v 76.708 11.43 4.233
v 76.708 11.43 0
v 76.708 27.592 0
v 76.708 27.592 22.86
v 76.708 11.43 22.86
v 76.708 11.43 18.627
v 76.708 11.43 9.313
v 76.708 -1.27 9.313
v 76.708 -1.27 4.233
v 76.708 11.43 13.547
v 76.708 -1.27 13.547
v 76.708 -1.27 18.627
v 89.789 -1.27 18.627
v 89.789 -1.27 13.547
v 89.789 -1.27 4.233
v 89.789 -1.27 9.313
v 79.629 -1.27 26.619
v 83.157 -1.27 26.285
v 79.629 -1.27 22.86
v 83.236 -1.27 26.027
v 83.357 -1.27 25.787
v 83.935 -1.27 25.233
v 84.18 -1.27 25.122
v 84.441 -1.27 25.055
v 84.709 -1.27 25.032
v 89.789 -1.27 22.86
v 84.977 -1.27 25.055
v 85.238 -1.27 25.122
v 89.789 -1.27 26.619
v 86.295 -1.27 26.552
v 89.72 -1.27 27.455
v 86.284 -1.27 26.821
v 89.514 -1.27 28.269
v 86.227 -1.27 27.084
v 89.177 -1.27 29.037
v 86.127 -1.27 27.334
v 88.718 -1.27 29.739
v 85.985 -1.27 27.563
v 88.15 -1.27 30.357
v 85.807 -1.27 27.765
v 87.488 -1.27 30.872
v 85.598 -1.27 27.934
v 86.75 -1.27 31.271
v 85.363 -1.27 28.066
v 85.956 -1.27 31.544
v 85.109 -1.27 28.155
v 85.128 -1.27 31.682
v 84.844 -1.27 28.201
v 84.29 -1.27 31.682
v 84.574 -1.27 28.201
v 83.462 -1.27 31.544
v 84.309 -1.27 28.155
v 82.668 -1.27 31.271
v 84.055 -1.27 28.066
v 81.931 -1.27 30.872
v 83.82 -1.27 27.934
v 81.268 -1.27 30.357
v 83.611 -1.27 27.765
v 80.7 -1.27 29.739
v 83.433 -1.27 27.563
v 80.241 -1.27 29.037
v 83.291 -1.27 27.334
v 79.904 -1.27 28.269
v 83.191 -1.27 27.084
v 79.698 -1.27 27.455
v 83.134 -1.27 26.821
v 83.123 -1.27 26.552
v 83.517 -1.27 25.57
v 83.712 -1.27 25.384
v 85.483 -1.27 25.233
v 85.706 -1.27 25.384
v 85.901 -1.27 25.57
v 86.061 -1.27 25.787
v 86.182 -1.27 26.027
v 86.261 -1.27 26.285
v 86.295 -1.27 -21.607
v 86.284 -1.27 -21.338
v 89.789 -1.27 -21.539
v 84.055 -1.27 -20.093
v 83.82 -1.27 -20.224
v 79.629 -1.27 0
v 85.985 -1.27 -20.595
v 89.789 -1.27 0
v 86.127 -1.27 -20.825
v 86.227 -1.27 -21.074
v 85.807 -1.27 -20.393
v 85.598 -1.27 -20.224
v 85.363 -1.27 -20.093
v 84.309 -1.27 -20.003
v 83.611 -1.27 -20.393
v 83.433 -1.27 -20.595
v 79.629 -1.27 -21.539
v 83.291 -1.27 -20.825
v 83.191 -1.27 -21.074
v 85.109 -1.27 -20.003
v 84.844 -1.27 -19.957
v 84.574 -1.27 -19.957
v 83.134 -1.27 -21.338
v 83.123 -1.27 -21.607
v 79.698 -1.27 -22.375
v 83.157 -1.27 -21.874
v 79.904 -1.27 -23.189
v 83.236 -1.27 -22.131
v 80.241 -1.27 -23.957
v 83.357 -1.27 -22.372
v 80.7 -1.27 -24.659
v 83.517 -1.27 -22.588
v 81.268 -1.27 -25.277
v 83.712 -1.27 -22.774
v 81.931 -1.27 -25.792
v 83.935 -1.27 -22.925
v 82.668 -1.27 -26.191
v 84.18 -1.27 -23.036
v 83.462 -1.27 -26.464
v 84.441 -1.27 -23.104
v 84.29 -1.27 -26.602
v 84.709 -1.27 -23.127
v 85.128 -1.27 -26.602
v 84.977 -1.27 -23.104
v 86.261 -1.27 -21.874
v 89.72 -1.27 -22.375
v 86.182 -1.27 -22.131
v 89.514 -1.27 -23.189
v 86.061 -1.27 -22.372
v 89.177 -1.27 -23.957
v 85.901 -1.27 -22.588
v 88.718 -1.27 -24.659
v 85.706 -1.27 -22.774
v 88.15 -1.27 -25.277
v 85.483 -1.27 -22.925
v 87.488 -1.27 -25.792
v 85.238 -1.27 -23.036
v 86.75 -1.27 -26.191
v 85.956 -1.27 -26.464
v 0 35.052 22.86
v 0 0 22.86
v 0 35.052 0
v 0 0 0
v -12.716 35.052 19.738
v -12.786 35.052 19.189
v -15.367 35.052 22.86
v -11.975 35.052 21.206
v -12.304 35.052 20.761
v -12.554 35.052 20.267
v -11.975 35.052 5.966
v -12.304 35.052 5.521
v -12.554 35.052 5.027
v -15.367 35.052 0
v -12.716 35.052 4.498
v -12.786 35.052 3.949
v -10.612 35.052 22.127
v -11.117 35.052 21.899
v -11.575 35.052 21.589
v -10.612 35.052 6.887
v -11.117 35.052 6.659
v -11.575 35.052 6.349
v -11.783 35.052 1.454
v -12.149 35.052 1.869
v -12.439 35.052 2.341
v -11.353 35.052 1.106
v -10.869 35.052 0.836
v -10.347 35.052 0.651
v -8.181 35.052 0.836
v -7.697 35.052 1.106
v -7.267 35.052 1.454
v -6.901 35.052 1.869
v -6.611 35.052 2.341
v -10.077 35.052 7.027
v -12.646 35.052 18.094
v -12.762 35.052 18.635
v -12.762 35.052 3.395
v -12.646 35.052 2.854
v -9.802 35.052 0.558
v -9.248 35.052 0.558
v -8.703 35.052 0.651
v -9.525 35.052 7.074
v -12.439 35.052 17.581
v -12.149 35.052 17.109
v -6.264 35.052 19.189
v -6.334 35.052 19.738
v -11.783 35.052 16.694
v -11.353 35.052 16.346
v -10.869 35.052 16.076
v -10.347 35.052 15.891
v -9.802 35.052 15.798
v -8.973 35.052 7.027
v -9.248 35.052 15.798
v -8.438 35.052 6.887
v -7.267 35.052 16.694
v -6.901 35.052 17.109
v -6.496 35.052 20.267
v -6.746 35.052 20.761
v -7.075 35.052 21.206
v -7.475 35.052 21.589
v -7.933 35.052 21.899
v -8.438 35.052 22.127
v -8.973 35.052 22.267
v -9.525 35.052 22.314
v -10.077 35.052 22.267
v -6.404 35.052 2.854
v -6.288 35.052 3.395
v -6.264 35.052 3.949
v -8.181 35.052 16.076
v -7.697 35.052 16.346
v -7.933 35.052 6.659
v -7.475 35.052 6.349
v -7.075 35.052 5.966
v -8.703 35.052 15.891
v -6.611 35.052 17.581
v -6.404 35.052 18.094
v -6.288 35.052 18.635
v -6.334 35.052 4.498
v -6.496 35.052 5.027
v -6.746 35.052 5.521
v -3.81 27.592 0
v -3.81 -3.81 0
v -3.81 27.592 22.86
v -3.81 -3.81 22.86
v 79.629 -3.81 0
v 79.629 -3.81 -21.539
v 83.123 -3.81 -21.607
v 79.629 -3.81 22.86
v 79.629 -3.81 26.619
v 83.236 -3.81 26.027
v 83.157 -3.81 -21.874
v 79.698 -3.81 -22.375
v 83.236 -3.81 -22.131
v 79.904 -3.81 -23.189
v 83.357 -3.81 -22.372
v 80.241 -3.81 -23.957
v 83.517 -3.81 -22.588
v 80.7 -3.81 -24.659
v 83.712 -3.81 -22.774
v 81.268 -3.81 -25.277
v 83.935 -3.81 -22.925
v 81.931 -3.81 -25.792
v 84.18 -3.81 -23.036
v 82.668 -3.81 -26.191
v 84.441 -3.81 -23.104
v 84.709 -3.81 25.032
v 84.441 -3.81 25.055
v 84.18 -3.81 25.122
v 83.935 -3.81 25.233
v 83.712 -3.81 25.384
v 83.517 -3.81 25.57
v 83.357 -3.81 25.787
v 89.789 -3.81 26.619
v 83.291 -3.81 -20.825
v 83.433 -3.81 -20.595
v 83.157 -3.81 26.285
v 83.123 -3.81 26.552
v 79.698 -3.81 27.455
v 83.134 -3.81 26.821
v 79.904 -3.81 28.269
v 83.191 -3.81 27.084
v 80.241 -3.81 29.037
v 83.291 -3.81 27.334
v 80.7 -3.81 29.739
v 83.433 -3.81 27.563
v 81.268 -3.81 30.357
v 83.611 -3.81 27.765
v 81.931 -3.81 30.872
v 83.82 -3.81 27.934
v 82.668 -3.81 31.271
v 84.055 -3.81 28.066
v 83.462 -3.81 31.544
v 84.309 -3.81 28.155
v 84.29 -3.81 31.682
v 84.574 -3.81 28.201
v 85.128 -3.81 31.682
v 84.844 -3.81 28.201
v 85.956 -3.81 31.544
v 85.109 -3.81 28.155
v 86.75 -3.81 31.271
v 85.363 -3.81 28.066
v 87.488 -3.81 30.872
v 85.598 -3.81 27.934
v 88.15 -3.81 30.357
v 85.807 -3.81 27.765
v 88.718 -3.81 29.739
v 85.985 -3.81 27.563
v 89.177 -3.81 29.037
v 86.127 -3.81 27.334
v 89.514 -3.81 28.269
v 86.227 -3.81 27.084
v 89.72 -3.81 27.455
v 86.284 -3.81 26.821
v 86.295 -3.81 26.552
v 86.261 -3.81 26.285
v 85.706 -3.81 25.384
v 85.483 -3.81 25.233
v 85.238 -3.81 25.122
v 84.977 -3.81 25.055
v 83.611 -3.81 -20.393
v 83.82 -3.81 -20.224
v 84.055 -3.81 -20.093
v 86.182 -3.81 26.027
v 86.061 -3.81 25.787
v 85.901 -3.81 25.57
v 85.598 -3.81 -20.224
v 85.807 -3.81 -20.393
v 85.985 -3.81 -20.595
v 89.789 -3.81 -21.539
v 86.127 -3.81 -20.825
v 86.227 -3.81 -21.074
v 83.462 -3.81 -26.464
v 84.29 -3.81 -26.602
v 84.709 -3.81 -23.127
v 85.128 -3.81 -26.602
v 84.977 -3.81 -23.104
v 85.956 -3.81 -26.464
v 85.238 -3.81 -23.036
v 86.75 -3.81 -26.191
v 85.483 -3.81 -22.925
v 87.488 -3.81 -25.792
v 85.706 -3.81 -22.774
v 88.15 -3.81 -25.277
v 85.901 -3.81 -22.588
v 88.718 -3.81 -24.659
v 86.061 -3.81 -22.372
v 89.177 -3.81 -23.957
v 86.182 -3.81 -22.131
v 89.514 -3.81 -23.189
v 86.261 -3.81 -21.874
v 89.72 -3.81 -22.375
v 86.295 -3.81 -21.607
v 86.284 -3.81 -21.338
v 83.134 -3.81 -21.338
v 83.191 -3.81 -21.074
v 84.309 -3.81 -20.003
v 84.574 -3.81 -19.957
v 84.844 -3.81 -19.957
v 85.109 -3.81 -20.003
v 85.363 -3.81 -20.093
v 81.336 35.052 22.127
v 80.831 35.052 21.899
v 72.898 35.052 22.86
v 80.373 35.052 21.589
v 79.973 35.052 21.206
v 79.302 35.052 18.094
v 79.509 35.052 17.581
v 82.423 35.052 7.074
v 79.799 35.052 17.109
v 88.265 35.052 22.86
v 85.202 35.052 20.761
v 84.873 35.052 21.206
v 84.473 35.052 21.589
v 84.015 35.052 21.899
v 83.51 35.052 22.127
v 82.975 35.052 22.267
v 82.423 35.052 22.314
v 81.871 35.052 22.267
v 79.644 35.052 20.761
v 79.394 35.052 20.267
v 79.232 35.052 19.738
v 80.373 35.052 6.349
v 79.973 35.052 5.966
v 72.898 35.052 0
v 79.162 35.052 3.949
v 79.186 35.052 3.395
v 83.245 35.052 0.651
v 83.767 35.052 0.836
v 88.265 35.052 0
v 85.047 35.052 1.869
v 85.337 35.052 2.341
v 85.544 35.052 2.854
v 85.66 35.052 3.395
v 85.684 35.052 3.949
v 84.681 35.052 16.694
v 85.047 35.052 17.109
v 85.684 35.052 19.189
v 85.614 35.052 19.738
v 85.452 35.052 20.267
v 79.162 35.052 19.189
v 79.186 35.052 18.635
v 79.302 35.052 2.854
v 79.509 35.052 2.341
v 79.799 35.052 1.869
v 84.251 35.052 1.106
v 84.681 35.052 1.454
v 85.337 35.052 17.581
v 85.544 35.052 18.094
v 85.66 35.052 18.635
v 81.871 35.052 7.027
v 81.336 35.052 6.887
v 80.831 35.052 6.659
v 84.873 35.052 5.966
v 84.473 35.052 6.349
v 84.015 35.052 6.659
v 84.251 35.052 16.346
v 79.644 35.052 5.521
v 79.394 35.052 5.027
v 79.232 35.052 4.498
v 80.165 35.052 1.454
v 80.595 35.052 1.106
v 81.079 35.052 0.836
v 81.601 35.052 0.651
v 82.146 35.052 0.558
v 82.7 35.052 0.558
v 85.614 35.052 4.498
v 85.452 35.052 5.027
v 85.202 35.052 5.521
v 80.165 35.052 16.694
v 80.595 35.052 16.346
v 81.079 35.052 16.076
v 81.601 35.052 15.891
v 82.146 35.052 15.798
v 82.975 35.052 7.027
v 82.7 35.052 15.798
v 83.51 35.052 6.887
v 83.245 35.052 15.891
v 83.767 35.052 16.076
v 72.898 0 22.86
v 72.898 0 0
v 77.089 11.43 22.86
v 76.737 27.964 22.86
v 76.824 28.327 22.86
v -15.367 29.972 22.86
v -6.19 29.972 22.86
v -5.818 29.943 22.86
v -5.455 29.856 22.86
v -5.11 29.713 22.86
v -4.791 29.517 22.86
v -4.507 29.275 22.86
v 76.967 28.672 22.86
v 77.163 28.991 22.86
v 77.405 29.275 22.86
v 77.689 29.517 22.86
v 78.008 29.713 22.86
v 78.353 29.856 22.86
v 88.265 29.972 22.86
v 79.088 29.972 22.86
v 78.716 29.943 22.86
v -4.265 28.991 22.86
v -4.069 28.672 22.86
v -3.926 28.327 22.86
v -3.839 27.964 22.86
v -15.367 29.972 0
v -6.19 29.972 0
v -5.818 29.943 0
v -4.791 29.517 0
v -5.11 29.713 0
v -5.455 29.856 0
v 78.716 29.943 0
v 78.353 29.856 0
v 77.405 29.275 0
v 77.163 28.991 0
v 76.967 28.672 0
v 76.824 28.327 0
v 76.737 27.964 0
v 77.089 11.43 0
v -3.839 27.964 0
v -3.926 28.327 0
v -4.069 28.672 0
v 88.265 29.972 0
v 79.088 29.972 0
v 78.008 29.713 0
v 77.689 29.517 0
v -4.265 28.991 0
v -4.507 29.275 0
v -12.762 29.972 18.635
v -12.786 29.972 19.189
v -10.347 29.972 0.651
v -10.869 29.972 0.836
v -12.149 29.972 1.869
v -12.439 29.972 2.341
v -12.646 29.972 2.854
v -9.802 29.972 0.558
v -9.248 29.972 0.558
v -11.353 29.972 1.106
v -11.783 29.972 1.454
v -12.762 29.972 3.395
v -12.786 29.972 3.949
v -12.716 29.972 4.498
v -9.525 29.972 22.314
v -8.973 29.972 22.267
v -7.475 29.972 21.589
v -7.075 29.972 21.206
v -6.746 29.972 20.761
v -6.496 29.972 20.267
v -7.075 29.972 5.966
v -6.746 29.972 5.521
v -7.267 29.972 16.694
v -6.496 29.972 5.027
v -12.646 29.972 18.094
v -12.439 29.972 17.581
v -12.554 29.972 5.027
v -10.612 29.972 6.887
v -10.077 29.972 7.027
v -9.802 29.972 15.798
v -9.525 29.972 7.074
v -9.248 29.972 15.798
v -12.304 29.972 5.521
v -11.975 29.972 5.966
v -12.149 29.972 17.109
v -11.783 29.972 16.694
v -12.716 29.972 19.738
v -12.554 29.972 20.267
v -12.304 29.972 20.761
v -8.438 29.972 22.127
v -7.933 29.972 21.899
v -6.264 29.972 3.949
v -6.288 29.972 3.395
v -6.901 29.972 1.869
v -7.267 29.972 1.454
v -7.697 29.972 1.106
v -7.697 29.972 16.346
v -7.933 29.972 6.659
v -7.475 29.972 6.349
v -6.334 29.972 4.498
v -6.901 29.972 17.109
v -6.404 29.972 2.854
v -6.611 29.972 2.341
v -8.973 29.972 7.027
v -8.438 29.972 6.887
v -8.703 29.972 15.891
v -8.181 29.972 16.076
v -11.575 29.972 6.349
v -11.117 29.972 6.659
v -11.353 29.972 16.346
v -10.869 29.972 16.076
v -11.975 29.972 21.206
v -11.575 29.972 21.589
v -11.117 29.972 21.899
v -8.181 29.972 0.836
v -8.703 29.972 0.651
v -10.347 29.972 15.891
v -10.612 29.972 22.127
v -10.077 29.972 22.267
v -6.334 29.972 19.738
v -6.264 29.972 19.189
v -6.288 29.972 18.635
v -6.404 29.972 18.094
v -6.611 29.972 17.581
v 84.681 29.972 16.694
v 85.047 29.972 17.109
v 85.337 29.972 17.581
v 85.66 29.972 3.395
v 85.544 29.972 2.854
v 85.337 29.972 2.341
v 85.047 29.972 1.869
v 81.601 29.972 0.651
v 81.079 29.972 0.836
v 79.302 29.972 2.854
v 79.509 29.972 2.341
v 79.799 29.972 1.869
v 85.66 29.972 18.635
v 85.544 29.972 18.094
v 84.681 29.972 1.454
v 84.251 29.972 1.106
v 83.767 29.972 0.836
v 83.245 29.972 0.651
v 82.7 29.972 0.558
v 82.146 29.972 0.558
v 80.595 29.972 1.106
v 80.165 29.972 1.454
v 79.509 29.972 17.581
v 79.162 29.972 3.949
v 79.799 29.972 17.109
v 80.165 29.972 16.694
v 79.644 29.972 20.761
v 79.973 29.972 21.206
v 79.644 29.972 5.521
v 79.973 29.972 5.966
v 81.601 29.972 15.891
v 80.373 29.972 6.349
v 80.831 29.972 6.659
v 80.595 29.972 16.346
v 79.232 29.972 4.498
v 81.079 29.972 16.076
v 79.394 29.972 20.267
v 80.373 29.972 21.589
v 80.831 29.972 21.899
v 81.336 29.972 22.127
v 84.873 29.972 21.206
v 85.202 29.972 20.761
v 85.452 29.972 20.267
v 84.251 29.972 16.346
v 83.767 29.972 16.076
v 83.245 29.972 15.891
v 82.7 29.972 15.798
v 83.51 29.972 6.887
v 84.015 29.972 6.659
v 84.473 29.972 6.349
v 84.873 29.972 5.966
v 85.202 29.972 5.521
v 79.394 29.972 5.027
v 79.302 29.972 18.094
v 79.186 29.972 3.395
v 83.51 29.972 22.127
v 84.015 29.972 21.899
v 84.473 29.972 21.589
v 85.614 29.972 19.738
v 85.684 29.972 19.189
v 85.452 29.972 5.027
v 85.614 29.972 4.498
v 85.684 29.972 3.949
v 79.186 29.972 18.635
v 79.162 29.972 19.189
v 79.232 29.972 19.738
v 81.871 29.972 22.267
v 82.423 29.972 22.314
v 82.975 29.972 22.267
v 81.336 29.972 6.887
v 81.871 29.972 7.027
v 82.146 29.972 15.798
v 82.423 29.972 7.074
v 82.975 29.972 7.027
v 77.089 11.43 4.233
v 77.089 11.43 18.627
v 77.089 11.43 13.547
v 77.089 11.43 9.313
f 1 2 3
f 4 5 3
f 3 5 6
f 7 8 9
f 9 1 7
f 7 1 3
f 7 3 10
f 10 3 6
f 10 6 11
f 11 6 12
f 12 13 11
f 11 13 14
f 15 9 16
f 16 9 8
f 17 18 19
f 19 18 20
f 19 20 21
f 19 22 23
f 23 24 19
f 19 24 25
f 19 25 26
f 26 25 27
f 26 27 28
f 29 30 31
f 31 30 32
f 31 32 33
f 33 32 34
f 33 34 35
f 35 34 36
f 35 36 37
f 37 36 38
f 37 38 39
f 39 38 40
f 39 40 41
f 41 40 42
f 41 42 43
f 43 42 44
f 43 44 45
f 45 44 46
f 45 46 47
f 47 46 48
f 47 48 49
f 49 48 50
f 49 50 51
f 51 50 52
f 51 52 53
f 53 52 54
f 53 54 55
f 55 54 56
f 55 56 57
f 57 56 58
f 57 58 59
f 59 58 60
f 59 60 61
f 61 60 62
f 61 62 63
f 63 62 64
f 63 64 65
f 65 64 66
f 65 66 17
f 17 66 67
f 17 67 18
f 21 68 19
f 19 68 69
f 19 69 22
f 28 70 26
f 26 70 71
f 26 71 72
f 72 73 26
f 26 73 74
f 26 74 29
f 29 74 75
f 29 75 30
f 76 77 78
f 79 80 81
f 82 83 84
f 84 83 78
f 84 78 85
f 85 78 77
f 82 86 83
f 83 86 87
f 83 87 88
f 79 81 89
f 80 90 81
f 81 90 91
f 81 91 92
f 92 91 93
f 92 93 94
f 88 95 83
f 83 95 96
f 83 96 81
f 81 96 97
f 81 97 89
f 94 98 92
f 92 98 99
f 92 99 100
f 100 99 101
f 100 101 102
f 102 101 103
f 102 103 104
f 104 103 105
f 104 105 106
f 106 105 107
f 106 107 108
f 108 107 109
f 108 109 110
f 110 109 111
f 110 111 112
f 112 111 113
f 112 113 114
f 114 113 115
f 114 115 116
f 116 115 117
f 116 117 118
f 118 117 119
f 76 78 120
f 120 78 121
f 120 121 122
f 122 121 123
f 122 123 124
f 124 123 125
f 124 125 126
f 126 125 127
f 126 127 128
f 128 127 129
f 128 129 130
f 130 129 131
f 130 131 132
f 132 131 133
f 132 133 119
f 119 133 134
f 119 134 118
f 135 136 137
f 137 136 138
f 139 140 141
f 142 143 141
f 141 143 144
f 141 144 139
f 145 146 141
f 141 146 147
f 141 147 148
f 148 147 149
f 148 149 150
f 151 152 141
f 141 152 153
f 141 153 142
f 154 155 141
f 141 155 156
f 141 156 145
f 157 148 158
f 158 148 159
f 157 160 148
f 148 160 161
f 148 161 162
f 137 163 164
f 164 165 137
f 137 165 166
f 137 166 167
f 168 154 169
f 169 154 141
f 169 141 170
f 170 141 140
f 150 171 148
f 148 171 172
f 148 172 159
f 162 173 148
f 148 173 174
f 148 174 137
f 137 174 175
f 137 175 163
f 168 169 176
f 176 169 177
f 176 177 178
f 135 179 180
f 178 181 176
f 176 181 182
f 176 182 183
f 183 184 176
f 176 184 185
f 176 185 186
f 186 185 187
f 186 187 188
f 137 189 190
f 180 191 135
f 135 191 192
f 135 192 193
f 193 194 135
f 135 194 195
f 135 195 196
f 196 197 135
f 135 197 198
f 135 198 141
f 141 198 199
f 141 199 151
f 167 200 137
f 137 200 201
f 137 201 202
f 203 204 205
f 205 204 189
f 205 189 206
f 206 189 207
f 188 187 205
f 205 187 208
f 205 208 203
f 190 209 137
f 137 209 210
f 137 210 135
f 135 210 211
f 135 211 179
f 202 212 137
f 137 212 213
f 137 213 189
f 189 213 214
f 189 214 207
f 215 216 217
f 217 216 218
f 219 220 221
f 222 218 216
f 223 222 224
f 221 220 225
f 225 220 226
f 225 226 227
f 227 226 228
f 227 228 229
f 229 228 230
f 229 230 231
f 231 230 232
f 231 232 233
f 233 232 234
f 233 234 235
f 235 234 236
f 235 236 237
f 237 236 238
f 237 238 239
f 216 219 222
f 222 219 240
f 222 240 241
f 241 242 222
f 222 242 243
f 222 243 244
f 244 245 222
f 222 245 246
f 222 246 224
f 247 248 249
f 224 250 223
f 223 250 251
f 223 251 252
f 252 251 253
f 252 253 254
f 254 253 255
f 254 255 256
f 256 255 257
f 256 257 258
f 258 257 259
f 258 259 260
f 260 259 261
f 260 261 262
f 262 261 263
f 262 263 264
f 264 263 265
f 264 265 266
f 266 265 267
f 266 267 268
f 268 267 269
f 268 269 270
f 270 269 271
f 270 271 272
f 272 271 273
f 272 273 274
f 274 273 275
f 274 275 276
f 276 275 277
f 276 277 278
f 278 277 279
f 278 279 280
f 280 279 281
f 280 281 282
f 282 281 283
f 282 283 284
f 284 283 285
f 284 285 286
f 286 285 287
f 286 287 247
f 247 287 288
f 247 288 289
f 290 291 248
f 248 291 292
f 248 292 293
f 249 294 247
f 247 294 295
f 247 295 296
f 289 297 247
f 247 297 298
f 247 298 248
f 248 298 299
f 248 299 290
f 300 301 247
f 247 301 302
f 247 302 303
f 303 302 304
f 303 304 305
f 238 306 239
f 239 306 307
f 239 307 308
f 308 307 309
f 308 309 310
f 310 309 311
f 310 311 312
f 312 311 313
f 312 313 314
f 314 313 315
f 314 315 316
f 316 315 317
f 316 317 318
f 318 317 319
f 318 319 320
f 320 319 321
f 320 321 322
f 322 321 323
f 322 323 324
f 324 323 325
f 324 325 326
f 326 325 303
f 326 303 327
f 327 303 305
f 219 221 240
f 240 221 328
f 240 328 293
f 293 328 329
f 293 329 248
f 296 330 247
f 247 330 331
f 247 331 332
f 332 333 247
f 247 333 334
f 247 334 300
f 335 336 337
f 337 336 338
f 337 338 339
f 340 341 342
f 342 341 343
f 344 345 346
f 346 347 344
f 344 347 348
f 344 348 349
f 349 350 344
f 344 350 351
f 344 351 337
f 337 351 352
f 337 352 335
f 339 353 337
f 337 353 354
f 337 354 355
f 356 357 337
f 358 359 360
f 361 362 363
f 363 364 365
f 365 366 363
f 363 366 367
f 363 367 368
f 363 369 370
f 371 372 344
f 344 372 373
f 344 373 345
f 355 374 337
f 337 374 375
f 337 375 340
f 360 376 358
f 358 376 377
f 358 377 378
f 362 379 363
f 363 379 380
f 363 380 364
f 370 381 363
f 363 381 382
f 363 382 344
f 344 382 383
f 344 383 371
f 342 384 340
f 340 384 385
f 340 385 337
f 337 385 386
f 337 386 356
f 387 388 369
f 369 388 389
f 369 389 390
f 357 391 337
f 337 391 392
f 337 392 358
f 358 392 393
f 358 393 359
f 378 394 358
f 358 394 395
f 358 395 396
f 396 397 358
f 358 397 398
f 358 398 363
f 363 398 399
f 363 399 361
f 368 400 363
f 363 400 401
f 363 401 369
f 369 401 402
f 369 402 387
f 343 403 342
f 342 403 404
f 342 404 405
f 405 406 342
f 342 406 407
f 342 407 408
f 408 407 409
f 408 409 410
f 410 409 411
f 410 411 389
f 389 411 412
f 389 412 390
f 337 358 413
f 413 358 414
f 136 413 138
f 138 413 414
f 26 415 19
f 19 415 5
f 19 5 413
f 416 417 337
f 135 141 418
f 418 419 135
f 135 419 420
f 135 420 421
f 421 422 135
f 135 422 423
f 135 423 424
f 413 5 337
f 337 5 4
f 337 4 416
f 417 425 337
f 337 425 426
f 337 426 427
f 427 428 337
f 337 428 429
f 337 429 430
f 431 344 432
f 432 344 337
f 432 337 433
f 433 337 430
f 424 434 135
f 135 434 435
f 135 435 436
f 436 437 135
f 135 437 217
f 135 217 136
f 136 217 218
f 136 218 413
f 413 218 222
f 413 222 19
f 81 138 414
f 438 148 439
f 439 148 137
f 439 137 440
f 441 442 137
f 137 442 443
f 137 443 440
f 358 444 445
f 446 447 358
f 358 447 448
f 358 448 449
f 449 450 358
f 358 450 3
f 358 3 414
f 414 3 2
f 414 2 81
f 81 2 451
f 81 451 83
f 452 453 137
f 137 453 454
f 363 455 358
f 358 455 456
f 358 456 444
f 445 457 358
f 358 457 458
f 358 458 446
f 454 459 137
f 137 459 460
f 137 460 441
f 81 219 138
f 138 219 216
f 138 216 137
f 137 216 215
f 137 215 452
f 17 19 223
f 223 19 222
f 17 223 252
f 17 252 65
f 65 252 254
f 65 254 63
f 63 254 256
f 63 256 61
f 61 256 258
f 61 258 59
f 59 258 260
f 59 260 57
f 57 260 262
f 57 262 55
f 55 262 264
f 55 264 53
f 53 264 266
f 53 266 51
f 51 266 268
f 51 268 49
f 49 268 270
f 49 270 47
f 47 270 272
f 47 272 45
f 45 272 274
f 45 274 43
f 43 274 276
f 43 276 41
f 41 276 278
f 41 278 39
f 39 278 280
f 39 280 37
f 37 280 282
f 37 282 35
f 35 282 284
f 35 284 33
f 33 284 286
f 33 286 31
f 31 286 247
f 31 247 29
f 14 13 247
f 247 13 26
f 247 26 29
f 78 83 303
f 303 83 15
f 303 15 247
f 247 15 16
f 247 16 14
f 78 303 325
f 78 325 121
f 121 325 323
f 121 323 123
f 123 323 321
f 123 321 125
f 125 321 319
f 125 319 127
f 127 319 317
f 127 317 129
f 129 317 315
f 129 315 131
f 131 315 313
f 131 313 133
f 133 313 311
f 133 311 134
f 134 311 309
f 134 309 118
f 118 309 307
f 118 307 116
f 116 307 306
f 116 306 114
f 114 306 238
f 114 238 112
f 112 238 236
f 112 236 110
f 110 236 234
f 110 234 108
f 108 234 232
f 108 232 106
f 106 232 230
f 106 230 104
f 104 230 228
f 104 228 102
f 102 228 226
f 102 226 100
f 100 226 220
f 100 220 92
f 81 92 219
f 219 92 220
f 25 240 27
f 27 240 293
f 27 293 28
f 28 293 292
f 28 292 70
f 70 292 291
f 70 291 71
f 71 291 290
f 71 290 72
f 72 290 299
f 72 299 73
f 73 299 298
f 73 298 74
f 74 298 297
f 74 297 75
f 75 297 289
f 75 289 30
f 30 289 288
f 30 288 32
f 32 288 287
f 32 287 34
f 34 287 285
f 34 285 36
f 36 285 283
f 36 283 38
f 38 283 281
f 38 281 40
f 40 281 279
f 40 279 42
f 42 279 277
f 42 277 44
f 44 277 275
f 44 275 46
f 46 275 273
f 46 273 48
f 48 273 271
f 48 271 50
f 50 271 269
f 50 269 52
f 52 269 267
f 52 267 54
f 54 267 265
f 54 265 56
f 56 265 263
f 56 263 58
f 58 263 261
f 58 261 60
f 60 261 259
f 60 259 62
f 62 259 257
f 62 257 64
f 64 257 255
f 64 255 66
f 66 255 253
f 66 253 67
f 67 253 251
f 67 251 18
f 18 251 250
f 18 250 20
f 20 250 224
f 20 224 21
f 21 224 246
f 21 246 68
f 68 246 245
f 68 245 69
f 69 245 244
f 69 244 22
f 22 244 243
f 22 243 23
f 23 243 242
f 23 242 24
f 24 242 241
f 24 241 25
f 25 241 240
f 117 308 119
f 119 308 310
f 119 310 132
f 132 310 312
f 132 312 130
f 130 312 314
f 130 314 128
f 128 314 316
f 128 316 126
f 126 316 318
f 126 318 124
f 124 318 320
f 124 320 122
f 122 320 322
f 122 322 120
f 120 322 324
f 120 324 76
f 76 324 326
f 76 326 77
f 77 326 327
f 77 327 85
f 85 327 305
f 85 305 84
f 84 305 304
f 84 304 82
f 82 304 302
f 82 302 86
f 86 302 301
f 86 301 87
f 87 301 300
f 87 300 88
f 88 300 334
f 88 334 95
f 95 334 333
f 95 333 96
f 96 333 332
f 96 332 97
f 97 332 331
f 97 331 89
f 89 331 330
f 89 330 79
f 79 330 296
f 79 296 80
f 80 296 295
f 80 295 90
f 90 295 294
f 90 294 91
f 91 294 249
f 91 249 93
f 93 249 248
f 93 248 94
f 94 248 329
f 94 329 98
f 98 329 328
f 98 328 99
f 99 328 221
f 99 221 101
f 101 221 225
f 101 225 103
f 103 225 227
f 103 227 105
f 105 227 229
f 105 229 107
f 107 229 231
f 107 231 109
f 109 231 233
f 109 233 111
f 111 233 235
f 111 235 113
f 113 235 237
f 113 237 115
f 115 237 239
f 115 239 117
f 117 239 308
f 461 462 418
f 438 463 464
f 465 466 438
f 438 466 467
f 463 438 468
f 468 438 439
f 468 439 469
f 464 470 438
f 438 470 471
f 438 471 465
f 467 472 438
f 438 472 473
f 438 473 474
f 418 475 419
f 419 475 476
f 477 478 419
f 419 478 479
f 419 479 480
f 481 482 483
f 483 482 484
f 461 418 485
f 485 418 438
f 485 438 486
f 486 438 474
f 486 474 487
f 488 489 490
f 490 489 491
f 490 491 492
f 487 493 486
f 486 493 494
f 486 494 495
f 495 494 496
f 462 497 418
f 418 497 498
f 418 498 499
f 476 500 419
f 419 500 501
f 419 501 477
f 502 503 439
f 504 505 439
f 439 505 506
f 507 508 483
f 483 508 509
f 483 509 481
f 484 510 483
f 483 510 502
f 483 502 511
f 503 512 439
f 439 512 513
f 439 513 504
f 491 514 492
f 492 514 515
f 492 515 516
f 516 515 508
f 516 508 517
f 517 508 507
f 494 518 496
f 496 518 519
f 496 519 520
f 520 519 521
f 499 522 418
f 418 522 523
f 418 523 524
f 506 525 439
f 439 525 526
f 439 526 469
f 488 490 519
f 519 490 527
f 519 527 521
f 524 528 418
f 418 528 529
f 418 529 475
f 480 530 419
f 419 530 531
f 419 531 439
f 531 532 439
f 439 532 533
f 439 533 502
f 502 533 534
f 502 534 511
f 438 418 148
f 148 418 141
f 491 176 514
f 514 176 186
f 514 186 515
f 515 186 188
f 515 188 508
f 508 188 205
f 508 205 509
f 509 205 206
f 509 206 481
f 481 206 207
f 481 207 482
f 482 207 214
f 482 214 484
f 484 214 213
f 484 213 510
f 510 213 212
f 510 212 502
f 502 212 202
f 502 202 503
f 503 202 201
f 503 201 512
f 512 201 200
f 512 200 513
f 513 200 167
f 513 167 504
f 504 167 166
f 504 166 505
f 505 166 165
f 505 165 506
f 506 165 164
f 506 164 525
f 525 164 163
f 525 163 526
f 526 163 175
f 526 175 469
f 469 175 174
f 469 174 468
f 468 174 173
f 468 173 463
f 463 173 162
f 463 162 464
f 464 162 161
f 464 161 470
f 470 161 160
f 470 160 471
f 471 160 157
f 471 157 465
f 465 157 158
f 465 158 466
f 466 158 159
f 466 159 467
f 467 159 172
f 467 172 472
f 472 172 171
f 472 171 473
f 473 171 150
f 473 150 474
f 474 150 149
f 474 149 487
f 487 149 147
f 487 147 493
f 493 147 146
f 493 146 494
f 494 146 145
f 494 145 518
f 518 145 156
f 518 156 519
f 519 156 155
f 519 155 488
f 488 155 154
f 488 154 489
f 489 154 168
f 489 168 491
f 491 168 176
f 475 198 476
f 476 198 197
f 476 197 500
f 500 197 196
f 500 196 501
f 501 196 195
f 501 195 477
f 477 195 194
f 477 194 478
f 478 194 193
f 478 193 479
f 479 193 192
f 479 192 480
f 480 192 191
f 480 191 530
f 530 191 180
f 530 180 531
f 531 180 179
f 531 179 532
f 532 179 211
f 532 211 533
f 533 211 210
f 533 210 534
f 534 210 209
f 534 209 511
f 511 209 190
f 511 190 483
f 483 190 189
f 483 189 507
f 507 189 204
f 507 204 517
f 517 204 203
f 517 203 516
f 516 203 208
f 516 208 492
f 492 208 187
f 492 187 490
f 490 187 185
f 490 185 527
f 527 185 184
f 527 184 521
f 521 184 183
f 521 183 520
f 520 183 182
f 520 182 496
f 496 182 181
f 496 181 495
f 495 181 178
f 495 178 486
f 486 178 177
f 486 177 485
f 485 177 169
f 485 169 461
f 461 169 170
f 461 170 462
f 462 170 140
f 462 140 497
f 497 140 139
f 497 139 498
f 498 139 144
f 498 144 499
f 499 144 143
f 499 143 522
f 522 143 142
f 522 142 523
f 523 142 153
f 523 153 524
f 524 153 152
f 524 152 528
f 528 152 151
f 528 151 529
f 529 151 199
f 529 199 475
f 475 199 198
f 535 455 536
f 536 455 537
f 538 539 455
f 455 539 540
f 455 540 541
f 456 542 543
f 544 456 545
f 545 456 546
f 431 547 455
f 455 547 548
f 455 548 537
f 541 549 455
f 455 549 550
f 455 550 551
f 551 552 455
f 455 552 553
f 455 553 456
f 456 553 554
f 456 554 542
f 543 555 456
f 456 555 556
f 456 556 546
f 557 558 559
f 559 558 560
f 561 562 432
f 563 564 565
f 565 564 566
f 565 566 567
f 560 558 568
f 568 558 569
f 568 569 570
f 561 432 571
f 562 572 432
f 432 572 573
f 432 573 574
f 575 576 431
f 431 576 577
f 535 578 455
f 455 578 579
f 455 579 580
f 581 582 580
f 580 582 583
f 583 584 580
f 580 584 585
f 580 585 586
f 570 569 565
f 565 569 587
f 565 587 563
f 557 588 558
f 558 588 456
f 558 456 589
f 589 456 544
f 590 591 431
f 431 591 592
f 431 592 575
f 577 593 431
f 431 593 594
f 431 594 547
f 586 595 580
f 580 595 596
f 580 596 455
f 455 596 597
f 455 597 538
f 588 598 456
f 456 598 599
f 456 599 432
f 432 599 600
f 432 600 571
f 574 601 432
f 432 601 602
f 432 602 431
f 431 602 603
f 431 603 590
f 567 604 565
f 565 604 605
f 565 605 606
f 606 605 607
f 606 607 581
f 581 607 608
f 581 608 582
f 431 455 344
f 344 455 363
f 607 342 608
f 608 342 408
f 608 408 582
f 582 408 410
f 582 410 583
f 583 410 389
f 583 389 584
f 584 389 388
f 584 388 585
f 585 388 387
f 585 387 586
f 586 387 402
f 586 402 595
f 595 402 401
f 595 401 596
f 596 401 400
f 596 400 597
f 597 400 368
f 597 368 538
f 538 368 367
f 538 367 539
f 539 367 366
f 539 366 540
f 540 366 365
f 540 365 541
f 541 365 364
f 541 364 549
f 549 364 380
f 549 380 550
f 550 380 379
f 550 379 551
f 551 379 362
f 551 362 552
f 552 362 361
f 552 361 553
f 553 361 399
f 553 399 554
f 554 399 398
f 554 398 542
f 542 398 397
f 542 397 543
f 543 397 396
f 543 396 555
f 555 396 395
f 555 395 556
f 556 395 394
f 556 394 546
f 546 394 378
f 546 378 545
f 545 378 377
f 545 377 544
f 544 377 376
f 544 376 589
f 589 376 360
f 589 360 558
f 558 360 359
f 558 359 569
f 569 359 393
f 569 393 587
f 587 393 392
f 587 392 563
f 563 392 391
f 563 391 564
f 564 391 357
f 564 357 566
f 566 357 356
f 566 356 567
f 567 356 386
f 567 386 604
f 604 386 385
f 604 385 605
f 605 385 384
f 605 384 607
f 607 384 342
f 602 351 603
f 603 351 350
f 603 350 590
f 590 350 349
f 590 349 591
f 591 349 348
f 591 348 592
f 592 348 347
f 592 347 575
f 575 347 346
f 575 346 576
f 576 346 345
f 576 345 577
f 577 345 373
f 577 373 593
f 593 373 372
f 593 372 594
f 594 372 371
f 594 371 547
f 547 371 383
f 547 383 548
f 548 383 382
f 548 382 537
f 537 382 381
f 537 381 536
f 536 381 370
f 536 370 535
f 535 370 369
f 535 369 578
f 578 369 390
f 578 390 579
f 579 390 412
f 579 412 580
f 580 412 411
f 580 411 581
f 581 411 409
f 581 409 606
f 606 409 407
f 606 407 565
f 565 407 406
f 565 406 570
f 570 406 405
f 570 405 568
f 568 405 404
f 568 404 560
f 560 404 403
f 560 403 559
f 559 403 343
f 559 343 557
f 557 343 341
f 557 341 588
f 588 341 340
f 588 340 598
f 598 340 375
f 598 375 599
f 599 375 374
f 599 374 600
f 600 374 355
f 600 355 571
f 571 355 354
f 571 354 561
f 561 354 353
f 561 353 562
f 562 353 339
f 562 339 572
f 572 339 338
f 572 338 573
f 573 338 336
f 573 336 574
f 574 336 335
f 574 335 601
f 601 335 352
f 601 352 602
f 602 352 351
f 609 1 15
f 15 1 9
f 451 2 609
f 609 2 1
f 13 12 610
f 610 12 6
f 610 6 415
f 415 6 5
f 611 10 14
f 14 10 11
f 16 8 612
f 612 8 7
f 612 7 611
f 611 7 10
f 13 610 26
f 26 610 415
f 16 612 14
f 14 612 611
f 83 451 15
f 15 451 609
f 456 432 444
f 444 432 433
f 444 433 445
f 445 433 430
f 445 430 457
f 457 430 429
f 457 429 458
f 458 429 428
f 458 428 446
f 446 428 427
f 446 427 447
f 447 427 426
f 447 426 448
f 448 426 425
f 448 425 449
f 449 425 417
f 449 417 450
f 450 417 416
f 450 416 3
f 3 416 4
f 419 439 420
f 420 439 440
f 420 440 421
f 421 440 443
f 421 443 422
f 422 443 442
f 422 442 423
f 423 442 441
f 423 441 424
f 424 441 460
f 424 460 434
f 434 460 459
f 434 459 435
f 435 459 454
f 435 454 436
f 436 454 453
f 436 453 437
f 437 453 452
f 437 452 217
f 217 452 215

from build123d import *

# Parameters (mm, degrees)
BOSS_EXTRUDE1_DEPTH = 22.86
SKETCH2_R           = 1.5875
BOSS_EXTRUDE2_DEPTH = 2.54
SKETCH4_W           = 15.367
SKETCH4_H           = 22.86
SKETCH4_R           = 3.2639
BOSS_EXTRUDE3_DEPTH = 5.08
SKETCH5_W           = 13.081
SKETCH5_H           = 4.233333333
SKETCH5_H_2         = 4.233333334
BOSS_EXTRUDE4_DEPTH = 12.7
CHAMFER1_SIZE       = 12.7
FILLET1_R           = 2.38


with BuildPart() as part:
    # Sketch1 → Boss-Extrude1 (new body)
    with BuildSketch(Plane.XY):
        Polygon((-3.81, 35.052), (0, 35.052), (0, 0), (72.898, 0), (72.898, 35.052), (76.708, 35.052), (76.708, -3.81), (-3.81, -3.81), align=None)
    extrude(amount=BOSS_EXTRUDE1_DEPTH)

    # Sketch2 → Boss-Extrude2 (add)
    with BuildSketch(Plane.XZ.offset(3.81)):
        with BuildLine():
            ThreePointArc((89.789, 26.6192), (84.709, 31.6992), (79.629, 26.6192))
            Line((79.629, 26.6192), (79.629, 22.86))
            Line((79.629, 22.86), (76.708, 22.86))
            Line((76.708, 22.86), (76.708, 0))
            Line((76.708, 0), (79.629, 0))
            Line((79.629, 0), (79.629, -21.5392))
            ThreePointArc((79.629, -21.5392), (84.709, -26.6192), (89.789, -21.5392))
            Line((89.789, -21.5392), (89.789, 26.6192))
        make_face()
        with Locations((84.709, -21.5392)):
            Circle(SKETCH2_R, mode=Mode.SUBTRACT)
        with Locations((84.709, 26.6192)):
            Circle(SKETCH2_R, mode=Mode.SUBTRACT)
    extrude(amount=-BOSS_EXTRUDE2_DEPTH)

    # Sketch4 → Boss-Extrude3 (add)
    with BuildSketch(Plane(origin=(0, 35.052, 0), x_dir=(1, 0, 0), z_dir=(0, 1, 0))):
        with Locations((-7.6835, -11.43)):
            Rectangle(SKETCH4_W, SKETCH4_H)
        with Locations(Location((-9.525, -3.81, 0), (0, 0, 270))):
            Circle(SKETCH4_R, mode=Mode.SUBTRACT)
        with Locations(Location((-9.525, -19.05, 0), (0, 0, 270))):
            Circle(SKETCH4_R, mode=Mode.SUBTRACT)
    boss_extrude3 = extrude(amount=-BOSS_EXTRUDE3_DEPTH)

    # Mirror1: Boss-Extrude3 across plane
    add(boss_extrude3.mirror(Plane(origin=(36.449, 0, 0), x_dir=(0, 0, 1), z_dir=(1, 0, 0))))

    # Sketch5 → Boss-Extrude4 (add)
    with BuildSketch(Plane(origin=(0, -1.27, 0), x_dir=(1, 0, 0), z_dir=(0, 1, 0))):
        with Locations((83.2485, -2.116666667)):
            Rectangle(SKETCH5_W, SKETCH5_H)
        with Locations((83.2485, -20.743333334)):
            Rectangle(SKETCH5_W, SKETCH5_H)
        with Locations((83.2485, -11.43)):
            Rectangle(SKETCH5_W, SKETCH5_H_2)
    extrude(amount=BOSS_EXTRUDE4_DEPTH)

    # Chamfer1
    chamfer1_edges = [part.edges().sort_by_distance(p)[0] for p in [
        (89.789, 11.43, 20.743333333),
        (89.789, 11.43, 11.43),
        (89.789, 11.43, 2.116666667),
    ]]
    chamfer(chamfer1_edges, length=CHAMFER1_SIZE)

    # Fillet1
    fillet1_edges = [part.edges().sort_by_distance(p)[0] for p in [
        (-3.81, 29.972, 11.43),
        (76.708, 29.972, 11.43),
    ]]
    fillet(fillet1_edges, radius=FILLET1_R)


solid = part.part
